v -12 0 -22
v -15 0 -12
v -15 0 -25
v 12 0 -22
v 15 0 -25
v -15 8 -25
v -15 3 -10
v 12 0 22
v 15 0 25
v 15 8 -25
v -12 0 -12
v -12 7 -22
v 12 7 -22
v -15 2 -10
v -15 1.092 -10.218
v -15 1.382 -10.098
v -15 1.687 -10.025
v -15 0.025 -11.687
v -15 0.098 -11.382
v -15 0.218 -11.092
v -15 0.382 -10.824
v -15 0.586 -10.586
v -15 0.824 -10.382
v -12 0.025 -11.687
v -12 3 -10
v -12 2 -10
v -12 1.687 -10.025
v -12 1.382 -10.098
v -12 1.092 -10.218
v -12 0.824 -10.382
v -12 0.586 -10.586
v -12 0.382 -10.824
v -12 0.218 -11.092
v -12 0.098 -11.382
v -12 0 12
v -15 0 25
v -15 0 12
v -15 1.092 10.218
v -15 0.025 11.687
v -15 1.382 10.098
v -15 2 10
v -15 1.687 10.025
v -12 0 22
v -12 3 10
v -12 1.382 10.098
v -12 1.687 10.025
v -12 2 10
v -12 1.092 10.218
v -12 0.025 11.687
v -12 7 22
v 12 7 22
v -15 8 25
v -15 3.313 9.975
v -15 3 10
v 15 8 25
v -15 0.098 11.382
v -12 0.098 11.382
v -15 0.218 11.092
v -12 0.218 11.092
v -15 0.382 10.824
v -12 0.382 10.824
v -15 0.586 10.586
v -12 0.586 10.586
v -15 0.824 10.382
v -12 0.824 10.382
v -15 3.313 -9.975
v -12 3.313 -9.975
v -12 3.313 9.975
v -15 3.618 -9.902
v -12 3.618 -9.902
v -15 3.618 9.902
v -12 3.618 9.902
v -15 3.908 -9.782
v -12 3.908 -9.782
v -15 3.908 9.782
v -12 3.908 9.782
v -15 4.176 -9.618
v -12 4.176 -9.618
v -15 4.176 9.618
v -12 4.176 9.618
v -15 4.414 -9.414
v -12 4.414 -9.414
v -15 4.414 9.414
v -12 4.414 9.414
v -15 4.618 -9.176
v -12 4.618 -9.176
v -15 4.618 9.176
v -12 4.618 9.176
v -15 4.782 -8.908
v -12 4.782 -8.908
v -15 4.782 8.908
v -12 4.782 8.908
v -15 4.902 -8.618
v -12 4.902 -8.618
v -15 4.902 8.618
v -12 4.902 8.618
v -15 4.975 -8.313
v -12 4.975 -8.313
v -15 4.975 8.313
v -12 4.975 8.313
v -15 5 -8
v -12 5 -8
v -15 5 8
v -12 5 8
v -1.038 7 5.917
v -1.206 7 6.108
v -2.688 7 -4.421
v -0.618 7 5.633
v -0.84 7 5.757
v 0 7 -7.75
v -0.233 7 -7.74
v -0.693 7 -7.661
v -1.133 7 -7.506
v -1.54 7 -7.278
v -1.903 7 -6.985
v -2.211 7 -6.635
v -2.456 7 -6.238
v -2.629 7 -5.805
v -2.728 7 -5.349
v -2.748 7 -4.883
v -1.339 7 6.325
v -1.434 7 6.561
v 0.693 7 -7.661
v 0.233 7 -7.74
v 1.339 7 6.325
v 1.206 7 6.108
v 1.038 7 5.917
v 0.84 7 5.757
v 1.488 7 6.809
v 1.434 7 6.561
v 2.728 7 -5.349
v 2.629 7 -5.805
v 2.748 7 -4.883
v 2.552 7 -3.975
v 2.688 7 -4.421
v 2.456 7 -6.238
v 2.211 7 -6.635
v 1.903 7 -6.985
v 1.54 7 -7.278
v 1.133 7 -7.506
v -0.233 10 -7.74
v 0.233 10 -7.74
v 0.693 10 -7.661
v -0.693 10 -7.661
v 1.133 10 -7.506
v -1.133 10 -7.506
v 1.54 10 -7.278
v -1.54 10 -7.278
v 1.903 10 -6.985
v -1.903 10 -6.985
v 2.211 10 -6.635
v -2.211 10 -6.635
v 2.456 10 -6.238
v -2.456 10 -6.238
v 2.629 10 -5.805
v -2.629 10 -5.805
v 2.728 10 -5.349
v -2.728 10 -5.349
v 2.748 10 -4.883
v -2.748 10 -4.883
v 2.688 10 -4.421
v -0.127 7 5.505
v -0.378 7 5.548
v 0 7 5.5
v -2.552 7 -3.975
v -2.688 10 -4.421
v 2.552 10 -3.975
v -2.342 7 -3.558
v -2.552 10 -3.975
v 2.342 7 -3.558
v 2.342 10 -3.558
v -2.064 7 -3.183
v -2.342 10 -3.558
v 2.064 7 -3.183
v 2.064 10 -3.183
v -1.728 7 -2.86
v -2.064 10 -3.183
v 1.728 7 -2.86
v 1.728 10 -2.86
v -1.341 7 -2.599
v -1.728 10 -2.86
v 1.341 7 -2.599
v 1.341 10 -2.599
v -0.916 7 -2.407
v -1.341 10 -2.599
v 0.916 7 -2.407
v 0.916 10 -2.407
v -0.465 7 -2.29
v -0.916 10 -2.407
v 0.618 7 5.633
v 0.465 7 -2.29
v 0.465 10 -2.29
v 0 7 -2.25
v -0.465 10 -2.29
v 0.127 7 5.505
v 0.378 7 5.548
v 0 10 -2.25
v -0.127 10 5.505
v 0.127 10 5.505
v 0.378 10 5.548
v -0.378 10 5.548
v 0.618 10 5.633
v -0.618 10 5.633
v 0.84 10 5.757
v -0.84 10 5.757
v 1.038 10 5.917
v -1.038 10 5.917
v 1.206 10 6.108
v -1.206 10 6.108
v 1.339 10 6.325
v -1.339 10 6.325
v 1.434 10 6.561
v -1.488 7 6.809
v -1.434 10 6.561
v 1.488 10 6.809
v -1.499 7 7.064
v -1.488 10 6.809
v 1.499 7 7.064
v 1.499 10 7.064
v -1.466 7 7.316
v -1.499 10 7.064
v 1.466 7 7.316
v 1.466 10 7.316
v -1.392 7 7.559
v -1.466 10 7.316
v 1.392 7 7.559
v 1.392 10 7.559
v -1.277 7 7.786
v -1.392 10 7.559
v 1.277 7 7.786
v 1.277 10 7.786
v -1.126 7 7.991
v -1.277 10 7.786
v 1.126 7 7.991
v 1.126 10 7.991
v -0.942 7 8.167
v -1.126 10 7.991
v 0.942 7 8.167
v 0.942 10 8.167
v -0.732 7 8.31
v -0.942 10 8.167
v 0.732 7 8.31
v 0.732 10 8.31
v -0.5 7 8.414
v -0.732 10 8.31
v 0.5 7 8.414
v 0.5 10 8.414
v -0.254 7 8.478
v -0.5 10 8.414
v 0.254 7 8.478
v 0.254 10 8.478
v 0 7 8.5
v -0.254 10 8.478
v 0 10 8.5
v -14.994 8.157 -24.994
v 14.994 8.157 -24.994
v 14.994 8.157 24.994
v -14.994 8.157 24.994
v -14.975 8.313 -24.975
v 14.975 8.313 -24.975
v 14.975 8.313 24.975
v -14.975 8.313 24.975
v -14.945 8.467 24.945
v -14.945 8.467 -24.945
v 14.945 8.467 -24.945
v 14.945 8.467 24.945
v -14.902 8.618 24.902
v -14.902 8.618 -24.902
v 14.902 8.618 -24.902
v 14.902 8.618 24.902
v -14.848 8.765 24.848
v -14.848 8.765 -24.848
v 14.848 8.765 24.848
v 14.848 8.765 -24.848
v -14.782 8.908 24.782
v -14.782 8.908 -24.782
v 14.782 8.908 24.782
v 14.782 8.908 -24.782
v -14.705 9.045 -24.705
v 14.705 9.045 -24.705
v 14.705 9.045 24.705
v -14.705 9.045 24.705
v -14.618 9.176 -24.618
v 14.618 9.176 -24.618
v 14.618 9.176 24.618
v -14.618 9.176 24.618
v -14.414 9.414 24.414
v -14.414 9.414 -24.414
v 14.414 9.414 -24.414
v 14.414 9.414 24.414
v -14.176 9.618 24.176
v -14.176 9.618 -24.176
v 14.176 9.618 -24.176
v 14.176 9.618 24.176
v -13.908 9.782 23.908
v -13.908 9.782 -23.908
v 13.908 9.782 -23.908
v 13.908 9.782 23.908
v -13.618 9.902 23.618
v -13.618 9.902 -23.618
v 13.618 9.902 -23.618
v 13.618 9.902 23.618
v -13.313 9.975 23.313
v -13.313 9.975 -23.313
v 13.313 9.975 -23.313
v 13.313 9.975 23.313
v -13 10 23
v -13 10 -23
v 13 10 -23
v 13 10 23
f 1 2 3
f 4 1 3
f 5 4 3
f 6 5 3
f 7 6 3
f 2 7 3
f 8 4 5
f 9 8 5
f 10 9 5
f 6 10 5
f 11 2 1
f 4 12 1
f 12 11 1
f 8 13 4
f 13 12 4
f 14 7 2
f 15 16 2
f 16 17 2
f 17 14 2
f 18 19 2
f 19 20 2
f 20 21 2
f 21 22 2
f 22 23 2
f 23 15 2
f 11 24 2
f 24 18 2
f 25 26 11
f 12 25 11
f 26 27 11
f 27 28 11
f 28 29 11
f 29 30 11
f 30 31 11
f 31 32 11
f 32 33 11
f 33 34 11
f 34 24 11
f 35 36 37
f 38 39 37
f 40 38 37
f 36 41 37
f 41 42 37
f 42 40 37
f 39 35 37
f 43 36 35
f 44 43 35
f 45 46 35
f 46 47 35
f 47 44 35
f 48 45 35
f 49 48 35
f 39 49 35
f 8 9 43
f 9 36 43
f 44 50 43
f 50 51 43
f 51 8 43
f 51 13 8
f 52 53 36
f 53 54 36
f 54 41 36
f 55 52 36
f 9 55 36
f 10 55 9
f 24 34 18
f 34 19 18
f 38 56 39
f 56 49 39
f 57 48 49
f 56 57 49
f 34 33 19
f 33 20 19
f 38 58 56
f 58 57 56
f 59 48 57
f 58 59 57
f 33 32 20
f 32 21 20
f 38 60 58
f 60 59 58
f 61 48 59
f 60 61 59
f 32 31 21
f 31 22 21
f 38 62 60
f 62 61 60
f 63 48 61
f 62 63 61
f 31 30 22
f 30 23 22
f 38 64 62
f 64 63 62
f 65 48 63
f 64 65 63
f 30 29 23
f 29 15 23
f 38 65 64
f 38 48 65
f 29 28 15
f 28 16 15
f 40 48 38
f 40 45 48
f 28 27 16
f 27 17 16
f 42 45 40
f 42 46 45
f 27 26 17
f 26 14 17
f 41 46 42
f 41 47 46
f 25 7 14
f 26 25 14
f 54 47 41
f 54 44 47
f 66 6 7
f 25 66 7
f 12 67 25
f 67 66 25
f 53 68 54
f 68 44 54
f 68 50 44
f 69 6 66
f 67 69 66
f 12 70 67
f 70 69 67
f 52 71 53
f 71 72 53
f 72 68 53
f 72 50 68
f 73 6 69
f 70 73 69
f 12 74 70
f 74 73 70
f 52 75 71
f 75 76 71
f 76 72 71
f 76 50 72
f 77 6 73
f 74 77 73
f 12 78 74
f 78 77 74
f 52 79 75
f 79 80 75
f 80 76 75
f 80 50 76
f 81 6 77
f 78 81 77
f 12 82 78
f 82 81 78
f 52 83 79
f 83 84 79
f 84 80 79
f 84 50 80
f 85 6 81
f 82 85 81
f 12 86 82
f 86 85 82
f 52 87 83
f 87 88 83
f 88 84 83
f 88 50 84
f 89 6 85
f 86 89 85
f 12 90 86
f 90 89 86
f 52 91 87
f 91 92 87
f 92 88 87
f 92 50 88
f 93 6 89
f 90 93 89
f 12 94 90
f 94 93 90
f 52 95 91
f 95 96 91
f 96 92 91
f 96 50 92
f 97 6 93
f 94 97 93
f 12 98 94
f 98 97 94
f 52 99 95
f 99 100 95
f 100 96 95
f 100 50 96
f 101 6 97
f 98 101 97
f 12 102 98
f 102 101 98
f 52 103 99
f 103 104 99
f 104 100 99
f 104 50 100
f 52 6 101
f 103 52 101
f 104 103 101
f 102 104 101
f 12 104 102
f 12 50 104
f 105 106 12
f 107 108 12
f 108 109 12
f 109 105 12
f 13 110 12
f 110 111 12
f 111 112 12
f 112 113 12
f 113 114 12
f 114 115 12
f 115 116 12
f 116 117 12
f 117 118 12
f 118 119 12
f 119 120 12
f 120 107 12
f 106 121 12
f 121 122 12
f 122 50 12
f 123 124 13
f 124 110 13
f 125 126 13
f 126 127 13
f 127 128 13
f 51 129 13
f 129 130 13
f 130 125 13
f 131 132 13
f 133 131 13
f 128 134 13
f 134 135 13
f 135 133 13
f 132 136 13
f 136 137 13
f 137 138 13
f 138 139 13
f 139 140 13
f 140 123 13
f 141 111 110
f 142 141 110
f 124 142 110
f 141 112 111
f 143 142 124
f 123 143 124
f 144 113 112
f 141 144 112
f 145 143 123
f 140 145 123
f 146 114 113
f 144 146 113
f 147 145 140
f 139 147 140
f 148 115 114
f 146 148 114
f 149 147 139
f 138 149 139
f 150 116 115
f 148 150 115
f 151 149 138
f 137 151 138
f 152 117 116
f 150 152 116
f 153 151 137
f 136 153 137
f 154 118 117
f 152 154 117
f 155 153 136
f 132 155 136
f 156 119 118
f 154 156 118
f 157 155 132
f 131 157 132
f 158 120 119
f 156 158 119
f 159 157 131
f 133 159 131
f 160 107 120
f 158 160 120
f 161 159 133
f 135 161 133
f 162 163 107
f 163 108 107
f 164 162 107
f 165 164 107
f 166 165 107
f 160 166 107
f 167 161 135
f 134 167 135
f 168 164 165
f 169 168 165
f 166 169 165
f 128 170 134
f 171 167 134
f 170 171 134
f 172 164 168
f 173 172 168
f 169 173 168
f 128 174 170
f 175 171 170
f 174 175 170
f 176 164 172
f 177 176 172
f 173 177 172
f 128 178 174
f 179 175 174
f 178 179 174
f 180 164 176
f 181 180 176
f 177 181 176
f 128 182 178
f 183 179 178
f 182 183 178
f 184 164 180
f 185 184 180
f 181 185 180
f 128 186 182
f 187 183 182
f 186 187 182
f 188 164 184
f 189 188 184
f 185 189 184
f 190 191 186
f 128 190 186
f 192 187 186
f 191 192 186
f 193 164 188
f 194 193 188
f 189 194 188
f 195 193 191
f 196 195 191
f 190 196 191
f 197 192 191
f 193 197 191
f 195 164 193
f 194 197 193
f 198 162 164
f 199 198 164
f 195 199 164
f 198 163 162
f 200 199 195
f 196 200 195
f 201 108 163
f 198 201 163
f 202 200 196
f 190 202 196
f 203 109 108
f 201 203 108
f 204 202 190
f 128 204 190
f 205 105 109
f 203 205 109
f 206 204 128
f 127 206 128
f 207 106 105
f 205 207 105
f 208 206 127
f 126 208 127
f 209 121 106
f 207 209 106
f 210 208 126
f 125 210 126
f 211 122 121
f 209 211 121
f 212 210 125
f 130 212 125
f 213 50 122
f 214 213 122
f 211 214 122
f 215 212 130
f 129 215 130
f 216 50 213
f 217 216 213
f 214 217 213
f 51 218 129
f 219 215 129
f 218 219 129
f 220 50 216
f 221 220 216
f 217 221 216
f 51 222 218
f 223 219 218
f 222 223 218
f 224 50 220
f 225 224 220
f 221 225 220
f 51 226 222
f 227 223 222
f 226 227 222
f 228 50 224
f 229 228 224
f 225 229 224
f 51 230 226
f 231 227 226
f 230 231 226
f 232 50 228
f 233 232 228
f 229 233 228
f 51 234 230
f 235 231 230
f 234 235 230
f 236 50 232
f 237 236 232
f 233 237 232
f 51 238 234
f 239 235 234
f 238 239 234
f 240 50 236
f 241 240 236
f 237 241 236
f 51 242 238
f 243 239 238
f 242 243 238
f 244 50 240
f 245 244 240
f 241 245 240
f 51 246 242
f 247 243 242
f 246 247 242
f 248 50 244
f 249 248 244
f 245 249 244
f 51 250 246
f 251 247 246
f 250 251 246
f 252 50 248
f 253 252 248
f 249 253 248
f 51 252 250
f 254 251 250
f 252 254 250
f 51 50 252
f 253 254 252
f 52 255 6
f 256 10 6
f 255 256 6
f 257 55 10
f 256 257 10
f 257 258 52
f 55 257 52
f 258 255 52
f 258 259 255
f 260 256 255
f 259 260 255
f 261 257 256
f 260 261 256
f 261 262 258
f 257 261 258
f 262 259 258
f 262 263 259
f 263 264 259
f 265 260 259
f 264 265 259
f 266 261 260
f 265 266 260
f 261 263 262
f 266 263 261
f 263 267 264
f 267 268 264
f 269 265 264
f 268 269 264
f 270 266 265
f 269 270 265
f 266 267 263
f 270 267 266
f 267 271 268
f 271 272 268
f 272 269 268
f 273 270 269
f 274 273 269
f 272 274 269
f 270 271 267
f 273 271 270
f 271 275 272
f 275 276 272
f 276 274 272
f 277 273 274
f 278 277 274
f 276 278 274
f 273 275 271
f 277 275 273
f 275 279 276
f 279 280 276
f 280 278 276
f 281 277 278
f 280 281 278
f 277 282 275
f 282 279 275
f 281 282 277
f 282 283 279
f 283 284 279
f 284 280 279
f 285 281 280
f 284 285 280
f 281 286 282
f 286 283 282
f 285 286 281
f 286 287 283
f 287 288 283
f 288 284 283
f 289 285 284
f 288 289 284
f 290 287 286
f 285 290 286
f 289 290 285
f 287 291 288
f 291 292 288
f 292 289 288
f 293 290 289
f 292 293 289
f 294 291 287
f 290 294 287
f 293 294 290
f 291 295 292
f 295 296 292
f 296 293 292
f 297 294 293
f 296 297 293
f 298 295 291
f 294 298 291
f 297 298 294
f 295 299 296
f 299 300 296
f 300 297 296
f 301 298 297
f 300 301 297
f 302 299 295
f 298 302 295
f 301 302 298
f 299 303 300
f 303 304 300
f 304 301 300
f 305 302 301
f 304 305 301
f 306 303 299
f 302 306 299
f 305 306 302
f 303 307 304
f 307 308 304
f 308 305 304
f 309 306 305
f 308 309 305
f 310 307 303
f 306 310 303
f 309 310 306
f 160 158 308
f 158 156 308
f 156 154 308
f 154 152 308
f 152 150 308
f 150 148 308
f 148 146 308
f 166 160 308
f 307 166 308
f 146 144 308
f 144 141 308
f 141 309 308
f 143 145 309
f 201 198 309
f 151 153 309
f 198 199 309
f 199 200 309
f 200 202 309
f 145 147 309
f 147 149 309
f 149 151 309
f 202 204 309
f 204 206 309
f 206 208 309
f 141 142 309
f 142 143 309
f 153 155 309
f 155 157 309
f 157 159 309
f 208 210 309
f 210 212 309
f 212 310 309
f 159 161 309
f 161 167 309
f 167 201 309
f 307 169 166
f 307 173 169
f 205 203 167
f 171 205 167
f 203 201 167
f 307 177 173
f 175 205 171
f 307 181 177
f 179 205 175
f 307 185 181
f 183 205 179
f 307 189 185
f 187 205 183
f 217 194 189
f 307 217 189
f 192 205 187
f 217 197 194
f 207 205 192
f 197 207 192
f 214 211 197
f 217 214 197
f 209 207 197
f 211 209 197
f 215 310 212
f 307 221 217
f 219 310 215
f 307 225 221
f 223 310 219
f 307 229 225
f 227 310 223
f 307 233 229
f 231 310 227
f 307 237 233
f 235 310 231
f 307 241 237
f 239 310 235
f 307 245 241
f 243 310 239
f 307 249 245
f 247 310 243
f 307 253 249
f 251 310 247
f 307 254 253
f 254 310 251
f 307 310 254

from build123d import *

# Parameters (mm, degrees)
SKETCH1_W           = 30
SKETCH1_H           = 50
BOSS_EXTRUDE1_DEPTH = 10
SHELL1_T            = -3
CUT_EXTRUDE1_REACH  = 32.822
SKETCH2_R           = 1.5
SKETCH2_R_2         = 2.75
CUT_EXTRUDE2_REACH  = 42.311
SKETCH3_W           = 20
SKETCH3_H           = 5
FILLET1_R           = 2
FILLET2_R           = 2


with BuildPart() as part:
    # Sketch1 → Boss-Extrude1 (new body)
    with BuildSketch(Plane(origin=(0, 0, 0), x_dir=(1, 0, 0), z_dir=(0, 1, 0))):
        Rectangle(SKETCH1_W, SKETCH1_H)
    extrude(amount=BOSS_EXTRUDE1_DEPTH)

    # Shell1
    shell1_openings = [part.faces().sort_by_distance(p)[0] for p in [
        (0, 0, 0),
    ]]
    offset(amount=SHELL1_T, openings=shell1_openings, kind=Kind.INTERSECTION)

    # Sketch2 → Cut-Extrude1 (cut, up to next)
    with BuildSketch(Plane(origin=(0, 10, 0), x_dir=(1, 0, 0), z_dir=(0, 1, 0)), mode=Mode.PRIVATE) as cut_extrude1_sk1:
        with Locations(Location((0, -7, 0), (0, 0, 270))):
            Circle(SKETCH2_R)
    cut_extrude1_tool1 = extrude(cut_extrude1_sk1.sketch, amount=-CUT_EXTRUDE1_REACH, mode=Mode.PRIVATE) & part.part
    # Sketch2 → Cut-Extrude1 (cut, up to next)
    with BuildSketch(Plane(origin=(0, 10, 0), x_dir=(1, 0, 0), z_dir=(0, 1, 0)), mode=Mode.PRIVATE) as cut_extrude1_sk2:
        with Locations(Location((0, 5, 0), (0, 0, 270))):
            Circle(SKETCH2_R_2)
    cut_extrude1_tool2 = extrude(cut_extrude1_sk2.sketch, amount=-CUT_EXTRUDE1_REACH, mode=Mode.PRIVATE) & part.part
    add(cut_extrude1_tool1.solids().sort_by_distance((0, 10, 7))[0], mode=Mode.SUBTRACT)
    add(cut_extrude1_tool2.solids().sort_by_distance((0, 10, -5))[0], mode=Mode.SUBTRACT)

    # Sketch3 → Cut-Extrude2 (cut, up to next)
    with BuildSketch(Plane.ZY.offset(15), mode=Mode.PRIVATE) as cut_extrude2_sk1:
        with Locations((0, 2.5)):
            Rectangle(SKETCH3_W, SKETCH3_H)
    cut_extrude2_tool1 = extrude(cut_extrude2_sk1.sketch, amount=-CUT_EXTRUDE2_REACH, mode=Mode.PRIVATE) & part.part
    add(cut_extrude2_tool1.solids().sort_by_distance((-15, 2.5, 0))[0], mode=Mode.SUBTRACT)

    # Fillet1
    fillet1_edges = [part.edges().sort_by_distance(p)[0] for p in [
        (-13.5, 5, -10),
        (-13.5, 0, -10),
        (-13.5, 0, 10),
        (-13.5, 5, 10),
    ]]
    fillet(fillet1_edges, radius=FILLET1_R)

    # Fillet2
    fillet2_edges = [part.edges().sort_by_distance(p)[0] for p in [
        (-15, 10, 0),
        (0, 10, 25),
        (15, 10, 0),
        (0, 10, -25),
    ]]
    fillet(fillet2_edges, radius=FILLET2_R)


solid = part.part
